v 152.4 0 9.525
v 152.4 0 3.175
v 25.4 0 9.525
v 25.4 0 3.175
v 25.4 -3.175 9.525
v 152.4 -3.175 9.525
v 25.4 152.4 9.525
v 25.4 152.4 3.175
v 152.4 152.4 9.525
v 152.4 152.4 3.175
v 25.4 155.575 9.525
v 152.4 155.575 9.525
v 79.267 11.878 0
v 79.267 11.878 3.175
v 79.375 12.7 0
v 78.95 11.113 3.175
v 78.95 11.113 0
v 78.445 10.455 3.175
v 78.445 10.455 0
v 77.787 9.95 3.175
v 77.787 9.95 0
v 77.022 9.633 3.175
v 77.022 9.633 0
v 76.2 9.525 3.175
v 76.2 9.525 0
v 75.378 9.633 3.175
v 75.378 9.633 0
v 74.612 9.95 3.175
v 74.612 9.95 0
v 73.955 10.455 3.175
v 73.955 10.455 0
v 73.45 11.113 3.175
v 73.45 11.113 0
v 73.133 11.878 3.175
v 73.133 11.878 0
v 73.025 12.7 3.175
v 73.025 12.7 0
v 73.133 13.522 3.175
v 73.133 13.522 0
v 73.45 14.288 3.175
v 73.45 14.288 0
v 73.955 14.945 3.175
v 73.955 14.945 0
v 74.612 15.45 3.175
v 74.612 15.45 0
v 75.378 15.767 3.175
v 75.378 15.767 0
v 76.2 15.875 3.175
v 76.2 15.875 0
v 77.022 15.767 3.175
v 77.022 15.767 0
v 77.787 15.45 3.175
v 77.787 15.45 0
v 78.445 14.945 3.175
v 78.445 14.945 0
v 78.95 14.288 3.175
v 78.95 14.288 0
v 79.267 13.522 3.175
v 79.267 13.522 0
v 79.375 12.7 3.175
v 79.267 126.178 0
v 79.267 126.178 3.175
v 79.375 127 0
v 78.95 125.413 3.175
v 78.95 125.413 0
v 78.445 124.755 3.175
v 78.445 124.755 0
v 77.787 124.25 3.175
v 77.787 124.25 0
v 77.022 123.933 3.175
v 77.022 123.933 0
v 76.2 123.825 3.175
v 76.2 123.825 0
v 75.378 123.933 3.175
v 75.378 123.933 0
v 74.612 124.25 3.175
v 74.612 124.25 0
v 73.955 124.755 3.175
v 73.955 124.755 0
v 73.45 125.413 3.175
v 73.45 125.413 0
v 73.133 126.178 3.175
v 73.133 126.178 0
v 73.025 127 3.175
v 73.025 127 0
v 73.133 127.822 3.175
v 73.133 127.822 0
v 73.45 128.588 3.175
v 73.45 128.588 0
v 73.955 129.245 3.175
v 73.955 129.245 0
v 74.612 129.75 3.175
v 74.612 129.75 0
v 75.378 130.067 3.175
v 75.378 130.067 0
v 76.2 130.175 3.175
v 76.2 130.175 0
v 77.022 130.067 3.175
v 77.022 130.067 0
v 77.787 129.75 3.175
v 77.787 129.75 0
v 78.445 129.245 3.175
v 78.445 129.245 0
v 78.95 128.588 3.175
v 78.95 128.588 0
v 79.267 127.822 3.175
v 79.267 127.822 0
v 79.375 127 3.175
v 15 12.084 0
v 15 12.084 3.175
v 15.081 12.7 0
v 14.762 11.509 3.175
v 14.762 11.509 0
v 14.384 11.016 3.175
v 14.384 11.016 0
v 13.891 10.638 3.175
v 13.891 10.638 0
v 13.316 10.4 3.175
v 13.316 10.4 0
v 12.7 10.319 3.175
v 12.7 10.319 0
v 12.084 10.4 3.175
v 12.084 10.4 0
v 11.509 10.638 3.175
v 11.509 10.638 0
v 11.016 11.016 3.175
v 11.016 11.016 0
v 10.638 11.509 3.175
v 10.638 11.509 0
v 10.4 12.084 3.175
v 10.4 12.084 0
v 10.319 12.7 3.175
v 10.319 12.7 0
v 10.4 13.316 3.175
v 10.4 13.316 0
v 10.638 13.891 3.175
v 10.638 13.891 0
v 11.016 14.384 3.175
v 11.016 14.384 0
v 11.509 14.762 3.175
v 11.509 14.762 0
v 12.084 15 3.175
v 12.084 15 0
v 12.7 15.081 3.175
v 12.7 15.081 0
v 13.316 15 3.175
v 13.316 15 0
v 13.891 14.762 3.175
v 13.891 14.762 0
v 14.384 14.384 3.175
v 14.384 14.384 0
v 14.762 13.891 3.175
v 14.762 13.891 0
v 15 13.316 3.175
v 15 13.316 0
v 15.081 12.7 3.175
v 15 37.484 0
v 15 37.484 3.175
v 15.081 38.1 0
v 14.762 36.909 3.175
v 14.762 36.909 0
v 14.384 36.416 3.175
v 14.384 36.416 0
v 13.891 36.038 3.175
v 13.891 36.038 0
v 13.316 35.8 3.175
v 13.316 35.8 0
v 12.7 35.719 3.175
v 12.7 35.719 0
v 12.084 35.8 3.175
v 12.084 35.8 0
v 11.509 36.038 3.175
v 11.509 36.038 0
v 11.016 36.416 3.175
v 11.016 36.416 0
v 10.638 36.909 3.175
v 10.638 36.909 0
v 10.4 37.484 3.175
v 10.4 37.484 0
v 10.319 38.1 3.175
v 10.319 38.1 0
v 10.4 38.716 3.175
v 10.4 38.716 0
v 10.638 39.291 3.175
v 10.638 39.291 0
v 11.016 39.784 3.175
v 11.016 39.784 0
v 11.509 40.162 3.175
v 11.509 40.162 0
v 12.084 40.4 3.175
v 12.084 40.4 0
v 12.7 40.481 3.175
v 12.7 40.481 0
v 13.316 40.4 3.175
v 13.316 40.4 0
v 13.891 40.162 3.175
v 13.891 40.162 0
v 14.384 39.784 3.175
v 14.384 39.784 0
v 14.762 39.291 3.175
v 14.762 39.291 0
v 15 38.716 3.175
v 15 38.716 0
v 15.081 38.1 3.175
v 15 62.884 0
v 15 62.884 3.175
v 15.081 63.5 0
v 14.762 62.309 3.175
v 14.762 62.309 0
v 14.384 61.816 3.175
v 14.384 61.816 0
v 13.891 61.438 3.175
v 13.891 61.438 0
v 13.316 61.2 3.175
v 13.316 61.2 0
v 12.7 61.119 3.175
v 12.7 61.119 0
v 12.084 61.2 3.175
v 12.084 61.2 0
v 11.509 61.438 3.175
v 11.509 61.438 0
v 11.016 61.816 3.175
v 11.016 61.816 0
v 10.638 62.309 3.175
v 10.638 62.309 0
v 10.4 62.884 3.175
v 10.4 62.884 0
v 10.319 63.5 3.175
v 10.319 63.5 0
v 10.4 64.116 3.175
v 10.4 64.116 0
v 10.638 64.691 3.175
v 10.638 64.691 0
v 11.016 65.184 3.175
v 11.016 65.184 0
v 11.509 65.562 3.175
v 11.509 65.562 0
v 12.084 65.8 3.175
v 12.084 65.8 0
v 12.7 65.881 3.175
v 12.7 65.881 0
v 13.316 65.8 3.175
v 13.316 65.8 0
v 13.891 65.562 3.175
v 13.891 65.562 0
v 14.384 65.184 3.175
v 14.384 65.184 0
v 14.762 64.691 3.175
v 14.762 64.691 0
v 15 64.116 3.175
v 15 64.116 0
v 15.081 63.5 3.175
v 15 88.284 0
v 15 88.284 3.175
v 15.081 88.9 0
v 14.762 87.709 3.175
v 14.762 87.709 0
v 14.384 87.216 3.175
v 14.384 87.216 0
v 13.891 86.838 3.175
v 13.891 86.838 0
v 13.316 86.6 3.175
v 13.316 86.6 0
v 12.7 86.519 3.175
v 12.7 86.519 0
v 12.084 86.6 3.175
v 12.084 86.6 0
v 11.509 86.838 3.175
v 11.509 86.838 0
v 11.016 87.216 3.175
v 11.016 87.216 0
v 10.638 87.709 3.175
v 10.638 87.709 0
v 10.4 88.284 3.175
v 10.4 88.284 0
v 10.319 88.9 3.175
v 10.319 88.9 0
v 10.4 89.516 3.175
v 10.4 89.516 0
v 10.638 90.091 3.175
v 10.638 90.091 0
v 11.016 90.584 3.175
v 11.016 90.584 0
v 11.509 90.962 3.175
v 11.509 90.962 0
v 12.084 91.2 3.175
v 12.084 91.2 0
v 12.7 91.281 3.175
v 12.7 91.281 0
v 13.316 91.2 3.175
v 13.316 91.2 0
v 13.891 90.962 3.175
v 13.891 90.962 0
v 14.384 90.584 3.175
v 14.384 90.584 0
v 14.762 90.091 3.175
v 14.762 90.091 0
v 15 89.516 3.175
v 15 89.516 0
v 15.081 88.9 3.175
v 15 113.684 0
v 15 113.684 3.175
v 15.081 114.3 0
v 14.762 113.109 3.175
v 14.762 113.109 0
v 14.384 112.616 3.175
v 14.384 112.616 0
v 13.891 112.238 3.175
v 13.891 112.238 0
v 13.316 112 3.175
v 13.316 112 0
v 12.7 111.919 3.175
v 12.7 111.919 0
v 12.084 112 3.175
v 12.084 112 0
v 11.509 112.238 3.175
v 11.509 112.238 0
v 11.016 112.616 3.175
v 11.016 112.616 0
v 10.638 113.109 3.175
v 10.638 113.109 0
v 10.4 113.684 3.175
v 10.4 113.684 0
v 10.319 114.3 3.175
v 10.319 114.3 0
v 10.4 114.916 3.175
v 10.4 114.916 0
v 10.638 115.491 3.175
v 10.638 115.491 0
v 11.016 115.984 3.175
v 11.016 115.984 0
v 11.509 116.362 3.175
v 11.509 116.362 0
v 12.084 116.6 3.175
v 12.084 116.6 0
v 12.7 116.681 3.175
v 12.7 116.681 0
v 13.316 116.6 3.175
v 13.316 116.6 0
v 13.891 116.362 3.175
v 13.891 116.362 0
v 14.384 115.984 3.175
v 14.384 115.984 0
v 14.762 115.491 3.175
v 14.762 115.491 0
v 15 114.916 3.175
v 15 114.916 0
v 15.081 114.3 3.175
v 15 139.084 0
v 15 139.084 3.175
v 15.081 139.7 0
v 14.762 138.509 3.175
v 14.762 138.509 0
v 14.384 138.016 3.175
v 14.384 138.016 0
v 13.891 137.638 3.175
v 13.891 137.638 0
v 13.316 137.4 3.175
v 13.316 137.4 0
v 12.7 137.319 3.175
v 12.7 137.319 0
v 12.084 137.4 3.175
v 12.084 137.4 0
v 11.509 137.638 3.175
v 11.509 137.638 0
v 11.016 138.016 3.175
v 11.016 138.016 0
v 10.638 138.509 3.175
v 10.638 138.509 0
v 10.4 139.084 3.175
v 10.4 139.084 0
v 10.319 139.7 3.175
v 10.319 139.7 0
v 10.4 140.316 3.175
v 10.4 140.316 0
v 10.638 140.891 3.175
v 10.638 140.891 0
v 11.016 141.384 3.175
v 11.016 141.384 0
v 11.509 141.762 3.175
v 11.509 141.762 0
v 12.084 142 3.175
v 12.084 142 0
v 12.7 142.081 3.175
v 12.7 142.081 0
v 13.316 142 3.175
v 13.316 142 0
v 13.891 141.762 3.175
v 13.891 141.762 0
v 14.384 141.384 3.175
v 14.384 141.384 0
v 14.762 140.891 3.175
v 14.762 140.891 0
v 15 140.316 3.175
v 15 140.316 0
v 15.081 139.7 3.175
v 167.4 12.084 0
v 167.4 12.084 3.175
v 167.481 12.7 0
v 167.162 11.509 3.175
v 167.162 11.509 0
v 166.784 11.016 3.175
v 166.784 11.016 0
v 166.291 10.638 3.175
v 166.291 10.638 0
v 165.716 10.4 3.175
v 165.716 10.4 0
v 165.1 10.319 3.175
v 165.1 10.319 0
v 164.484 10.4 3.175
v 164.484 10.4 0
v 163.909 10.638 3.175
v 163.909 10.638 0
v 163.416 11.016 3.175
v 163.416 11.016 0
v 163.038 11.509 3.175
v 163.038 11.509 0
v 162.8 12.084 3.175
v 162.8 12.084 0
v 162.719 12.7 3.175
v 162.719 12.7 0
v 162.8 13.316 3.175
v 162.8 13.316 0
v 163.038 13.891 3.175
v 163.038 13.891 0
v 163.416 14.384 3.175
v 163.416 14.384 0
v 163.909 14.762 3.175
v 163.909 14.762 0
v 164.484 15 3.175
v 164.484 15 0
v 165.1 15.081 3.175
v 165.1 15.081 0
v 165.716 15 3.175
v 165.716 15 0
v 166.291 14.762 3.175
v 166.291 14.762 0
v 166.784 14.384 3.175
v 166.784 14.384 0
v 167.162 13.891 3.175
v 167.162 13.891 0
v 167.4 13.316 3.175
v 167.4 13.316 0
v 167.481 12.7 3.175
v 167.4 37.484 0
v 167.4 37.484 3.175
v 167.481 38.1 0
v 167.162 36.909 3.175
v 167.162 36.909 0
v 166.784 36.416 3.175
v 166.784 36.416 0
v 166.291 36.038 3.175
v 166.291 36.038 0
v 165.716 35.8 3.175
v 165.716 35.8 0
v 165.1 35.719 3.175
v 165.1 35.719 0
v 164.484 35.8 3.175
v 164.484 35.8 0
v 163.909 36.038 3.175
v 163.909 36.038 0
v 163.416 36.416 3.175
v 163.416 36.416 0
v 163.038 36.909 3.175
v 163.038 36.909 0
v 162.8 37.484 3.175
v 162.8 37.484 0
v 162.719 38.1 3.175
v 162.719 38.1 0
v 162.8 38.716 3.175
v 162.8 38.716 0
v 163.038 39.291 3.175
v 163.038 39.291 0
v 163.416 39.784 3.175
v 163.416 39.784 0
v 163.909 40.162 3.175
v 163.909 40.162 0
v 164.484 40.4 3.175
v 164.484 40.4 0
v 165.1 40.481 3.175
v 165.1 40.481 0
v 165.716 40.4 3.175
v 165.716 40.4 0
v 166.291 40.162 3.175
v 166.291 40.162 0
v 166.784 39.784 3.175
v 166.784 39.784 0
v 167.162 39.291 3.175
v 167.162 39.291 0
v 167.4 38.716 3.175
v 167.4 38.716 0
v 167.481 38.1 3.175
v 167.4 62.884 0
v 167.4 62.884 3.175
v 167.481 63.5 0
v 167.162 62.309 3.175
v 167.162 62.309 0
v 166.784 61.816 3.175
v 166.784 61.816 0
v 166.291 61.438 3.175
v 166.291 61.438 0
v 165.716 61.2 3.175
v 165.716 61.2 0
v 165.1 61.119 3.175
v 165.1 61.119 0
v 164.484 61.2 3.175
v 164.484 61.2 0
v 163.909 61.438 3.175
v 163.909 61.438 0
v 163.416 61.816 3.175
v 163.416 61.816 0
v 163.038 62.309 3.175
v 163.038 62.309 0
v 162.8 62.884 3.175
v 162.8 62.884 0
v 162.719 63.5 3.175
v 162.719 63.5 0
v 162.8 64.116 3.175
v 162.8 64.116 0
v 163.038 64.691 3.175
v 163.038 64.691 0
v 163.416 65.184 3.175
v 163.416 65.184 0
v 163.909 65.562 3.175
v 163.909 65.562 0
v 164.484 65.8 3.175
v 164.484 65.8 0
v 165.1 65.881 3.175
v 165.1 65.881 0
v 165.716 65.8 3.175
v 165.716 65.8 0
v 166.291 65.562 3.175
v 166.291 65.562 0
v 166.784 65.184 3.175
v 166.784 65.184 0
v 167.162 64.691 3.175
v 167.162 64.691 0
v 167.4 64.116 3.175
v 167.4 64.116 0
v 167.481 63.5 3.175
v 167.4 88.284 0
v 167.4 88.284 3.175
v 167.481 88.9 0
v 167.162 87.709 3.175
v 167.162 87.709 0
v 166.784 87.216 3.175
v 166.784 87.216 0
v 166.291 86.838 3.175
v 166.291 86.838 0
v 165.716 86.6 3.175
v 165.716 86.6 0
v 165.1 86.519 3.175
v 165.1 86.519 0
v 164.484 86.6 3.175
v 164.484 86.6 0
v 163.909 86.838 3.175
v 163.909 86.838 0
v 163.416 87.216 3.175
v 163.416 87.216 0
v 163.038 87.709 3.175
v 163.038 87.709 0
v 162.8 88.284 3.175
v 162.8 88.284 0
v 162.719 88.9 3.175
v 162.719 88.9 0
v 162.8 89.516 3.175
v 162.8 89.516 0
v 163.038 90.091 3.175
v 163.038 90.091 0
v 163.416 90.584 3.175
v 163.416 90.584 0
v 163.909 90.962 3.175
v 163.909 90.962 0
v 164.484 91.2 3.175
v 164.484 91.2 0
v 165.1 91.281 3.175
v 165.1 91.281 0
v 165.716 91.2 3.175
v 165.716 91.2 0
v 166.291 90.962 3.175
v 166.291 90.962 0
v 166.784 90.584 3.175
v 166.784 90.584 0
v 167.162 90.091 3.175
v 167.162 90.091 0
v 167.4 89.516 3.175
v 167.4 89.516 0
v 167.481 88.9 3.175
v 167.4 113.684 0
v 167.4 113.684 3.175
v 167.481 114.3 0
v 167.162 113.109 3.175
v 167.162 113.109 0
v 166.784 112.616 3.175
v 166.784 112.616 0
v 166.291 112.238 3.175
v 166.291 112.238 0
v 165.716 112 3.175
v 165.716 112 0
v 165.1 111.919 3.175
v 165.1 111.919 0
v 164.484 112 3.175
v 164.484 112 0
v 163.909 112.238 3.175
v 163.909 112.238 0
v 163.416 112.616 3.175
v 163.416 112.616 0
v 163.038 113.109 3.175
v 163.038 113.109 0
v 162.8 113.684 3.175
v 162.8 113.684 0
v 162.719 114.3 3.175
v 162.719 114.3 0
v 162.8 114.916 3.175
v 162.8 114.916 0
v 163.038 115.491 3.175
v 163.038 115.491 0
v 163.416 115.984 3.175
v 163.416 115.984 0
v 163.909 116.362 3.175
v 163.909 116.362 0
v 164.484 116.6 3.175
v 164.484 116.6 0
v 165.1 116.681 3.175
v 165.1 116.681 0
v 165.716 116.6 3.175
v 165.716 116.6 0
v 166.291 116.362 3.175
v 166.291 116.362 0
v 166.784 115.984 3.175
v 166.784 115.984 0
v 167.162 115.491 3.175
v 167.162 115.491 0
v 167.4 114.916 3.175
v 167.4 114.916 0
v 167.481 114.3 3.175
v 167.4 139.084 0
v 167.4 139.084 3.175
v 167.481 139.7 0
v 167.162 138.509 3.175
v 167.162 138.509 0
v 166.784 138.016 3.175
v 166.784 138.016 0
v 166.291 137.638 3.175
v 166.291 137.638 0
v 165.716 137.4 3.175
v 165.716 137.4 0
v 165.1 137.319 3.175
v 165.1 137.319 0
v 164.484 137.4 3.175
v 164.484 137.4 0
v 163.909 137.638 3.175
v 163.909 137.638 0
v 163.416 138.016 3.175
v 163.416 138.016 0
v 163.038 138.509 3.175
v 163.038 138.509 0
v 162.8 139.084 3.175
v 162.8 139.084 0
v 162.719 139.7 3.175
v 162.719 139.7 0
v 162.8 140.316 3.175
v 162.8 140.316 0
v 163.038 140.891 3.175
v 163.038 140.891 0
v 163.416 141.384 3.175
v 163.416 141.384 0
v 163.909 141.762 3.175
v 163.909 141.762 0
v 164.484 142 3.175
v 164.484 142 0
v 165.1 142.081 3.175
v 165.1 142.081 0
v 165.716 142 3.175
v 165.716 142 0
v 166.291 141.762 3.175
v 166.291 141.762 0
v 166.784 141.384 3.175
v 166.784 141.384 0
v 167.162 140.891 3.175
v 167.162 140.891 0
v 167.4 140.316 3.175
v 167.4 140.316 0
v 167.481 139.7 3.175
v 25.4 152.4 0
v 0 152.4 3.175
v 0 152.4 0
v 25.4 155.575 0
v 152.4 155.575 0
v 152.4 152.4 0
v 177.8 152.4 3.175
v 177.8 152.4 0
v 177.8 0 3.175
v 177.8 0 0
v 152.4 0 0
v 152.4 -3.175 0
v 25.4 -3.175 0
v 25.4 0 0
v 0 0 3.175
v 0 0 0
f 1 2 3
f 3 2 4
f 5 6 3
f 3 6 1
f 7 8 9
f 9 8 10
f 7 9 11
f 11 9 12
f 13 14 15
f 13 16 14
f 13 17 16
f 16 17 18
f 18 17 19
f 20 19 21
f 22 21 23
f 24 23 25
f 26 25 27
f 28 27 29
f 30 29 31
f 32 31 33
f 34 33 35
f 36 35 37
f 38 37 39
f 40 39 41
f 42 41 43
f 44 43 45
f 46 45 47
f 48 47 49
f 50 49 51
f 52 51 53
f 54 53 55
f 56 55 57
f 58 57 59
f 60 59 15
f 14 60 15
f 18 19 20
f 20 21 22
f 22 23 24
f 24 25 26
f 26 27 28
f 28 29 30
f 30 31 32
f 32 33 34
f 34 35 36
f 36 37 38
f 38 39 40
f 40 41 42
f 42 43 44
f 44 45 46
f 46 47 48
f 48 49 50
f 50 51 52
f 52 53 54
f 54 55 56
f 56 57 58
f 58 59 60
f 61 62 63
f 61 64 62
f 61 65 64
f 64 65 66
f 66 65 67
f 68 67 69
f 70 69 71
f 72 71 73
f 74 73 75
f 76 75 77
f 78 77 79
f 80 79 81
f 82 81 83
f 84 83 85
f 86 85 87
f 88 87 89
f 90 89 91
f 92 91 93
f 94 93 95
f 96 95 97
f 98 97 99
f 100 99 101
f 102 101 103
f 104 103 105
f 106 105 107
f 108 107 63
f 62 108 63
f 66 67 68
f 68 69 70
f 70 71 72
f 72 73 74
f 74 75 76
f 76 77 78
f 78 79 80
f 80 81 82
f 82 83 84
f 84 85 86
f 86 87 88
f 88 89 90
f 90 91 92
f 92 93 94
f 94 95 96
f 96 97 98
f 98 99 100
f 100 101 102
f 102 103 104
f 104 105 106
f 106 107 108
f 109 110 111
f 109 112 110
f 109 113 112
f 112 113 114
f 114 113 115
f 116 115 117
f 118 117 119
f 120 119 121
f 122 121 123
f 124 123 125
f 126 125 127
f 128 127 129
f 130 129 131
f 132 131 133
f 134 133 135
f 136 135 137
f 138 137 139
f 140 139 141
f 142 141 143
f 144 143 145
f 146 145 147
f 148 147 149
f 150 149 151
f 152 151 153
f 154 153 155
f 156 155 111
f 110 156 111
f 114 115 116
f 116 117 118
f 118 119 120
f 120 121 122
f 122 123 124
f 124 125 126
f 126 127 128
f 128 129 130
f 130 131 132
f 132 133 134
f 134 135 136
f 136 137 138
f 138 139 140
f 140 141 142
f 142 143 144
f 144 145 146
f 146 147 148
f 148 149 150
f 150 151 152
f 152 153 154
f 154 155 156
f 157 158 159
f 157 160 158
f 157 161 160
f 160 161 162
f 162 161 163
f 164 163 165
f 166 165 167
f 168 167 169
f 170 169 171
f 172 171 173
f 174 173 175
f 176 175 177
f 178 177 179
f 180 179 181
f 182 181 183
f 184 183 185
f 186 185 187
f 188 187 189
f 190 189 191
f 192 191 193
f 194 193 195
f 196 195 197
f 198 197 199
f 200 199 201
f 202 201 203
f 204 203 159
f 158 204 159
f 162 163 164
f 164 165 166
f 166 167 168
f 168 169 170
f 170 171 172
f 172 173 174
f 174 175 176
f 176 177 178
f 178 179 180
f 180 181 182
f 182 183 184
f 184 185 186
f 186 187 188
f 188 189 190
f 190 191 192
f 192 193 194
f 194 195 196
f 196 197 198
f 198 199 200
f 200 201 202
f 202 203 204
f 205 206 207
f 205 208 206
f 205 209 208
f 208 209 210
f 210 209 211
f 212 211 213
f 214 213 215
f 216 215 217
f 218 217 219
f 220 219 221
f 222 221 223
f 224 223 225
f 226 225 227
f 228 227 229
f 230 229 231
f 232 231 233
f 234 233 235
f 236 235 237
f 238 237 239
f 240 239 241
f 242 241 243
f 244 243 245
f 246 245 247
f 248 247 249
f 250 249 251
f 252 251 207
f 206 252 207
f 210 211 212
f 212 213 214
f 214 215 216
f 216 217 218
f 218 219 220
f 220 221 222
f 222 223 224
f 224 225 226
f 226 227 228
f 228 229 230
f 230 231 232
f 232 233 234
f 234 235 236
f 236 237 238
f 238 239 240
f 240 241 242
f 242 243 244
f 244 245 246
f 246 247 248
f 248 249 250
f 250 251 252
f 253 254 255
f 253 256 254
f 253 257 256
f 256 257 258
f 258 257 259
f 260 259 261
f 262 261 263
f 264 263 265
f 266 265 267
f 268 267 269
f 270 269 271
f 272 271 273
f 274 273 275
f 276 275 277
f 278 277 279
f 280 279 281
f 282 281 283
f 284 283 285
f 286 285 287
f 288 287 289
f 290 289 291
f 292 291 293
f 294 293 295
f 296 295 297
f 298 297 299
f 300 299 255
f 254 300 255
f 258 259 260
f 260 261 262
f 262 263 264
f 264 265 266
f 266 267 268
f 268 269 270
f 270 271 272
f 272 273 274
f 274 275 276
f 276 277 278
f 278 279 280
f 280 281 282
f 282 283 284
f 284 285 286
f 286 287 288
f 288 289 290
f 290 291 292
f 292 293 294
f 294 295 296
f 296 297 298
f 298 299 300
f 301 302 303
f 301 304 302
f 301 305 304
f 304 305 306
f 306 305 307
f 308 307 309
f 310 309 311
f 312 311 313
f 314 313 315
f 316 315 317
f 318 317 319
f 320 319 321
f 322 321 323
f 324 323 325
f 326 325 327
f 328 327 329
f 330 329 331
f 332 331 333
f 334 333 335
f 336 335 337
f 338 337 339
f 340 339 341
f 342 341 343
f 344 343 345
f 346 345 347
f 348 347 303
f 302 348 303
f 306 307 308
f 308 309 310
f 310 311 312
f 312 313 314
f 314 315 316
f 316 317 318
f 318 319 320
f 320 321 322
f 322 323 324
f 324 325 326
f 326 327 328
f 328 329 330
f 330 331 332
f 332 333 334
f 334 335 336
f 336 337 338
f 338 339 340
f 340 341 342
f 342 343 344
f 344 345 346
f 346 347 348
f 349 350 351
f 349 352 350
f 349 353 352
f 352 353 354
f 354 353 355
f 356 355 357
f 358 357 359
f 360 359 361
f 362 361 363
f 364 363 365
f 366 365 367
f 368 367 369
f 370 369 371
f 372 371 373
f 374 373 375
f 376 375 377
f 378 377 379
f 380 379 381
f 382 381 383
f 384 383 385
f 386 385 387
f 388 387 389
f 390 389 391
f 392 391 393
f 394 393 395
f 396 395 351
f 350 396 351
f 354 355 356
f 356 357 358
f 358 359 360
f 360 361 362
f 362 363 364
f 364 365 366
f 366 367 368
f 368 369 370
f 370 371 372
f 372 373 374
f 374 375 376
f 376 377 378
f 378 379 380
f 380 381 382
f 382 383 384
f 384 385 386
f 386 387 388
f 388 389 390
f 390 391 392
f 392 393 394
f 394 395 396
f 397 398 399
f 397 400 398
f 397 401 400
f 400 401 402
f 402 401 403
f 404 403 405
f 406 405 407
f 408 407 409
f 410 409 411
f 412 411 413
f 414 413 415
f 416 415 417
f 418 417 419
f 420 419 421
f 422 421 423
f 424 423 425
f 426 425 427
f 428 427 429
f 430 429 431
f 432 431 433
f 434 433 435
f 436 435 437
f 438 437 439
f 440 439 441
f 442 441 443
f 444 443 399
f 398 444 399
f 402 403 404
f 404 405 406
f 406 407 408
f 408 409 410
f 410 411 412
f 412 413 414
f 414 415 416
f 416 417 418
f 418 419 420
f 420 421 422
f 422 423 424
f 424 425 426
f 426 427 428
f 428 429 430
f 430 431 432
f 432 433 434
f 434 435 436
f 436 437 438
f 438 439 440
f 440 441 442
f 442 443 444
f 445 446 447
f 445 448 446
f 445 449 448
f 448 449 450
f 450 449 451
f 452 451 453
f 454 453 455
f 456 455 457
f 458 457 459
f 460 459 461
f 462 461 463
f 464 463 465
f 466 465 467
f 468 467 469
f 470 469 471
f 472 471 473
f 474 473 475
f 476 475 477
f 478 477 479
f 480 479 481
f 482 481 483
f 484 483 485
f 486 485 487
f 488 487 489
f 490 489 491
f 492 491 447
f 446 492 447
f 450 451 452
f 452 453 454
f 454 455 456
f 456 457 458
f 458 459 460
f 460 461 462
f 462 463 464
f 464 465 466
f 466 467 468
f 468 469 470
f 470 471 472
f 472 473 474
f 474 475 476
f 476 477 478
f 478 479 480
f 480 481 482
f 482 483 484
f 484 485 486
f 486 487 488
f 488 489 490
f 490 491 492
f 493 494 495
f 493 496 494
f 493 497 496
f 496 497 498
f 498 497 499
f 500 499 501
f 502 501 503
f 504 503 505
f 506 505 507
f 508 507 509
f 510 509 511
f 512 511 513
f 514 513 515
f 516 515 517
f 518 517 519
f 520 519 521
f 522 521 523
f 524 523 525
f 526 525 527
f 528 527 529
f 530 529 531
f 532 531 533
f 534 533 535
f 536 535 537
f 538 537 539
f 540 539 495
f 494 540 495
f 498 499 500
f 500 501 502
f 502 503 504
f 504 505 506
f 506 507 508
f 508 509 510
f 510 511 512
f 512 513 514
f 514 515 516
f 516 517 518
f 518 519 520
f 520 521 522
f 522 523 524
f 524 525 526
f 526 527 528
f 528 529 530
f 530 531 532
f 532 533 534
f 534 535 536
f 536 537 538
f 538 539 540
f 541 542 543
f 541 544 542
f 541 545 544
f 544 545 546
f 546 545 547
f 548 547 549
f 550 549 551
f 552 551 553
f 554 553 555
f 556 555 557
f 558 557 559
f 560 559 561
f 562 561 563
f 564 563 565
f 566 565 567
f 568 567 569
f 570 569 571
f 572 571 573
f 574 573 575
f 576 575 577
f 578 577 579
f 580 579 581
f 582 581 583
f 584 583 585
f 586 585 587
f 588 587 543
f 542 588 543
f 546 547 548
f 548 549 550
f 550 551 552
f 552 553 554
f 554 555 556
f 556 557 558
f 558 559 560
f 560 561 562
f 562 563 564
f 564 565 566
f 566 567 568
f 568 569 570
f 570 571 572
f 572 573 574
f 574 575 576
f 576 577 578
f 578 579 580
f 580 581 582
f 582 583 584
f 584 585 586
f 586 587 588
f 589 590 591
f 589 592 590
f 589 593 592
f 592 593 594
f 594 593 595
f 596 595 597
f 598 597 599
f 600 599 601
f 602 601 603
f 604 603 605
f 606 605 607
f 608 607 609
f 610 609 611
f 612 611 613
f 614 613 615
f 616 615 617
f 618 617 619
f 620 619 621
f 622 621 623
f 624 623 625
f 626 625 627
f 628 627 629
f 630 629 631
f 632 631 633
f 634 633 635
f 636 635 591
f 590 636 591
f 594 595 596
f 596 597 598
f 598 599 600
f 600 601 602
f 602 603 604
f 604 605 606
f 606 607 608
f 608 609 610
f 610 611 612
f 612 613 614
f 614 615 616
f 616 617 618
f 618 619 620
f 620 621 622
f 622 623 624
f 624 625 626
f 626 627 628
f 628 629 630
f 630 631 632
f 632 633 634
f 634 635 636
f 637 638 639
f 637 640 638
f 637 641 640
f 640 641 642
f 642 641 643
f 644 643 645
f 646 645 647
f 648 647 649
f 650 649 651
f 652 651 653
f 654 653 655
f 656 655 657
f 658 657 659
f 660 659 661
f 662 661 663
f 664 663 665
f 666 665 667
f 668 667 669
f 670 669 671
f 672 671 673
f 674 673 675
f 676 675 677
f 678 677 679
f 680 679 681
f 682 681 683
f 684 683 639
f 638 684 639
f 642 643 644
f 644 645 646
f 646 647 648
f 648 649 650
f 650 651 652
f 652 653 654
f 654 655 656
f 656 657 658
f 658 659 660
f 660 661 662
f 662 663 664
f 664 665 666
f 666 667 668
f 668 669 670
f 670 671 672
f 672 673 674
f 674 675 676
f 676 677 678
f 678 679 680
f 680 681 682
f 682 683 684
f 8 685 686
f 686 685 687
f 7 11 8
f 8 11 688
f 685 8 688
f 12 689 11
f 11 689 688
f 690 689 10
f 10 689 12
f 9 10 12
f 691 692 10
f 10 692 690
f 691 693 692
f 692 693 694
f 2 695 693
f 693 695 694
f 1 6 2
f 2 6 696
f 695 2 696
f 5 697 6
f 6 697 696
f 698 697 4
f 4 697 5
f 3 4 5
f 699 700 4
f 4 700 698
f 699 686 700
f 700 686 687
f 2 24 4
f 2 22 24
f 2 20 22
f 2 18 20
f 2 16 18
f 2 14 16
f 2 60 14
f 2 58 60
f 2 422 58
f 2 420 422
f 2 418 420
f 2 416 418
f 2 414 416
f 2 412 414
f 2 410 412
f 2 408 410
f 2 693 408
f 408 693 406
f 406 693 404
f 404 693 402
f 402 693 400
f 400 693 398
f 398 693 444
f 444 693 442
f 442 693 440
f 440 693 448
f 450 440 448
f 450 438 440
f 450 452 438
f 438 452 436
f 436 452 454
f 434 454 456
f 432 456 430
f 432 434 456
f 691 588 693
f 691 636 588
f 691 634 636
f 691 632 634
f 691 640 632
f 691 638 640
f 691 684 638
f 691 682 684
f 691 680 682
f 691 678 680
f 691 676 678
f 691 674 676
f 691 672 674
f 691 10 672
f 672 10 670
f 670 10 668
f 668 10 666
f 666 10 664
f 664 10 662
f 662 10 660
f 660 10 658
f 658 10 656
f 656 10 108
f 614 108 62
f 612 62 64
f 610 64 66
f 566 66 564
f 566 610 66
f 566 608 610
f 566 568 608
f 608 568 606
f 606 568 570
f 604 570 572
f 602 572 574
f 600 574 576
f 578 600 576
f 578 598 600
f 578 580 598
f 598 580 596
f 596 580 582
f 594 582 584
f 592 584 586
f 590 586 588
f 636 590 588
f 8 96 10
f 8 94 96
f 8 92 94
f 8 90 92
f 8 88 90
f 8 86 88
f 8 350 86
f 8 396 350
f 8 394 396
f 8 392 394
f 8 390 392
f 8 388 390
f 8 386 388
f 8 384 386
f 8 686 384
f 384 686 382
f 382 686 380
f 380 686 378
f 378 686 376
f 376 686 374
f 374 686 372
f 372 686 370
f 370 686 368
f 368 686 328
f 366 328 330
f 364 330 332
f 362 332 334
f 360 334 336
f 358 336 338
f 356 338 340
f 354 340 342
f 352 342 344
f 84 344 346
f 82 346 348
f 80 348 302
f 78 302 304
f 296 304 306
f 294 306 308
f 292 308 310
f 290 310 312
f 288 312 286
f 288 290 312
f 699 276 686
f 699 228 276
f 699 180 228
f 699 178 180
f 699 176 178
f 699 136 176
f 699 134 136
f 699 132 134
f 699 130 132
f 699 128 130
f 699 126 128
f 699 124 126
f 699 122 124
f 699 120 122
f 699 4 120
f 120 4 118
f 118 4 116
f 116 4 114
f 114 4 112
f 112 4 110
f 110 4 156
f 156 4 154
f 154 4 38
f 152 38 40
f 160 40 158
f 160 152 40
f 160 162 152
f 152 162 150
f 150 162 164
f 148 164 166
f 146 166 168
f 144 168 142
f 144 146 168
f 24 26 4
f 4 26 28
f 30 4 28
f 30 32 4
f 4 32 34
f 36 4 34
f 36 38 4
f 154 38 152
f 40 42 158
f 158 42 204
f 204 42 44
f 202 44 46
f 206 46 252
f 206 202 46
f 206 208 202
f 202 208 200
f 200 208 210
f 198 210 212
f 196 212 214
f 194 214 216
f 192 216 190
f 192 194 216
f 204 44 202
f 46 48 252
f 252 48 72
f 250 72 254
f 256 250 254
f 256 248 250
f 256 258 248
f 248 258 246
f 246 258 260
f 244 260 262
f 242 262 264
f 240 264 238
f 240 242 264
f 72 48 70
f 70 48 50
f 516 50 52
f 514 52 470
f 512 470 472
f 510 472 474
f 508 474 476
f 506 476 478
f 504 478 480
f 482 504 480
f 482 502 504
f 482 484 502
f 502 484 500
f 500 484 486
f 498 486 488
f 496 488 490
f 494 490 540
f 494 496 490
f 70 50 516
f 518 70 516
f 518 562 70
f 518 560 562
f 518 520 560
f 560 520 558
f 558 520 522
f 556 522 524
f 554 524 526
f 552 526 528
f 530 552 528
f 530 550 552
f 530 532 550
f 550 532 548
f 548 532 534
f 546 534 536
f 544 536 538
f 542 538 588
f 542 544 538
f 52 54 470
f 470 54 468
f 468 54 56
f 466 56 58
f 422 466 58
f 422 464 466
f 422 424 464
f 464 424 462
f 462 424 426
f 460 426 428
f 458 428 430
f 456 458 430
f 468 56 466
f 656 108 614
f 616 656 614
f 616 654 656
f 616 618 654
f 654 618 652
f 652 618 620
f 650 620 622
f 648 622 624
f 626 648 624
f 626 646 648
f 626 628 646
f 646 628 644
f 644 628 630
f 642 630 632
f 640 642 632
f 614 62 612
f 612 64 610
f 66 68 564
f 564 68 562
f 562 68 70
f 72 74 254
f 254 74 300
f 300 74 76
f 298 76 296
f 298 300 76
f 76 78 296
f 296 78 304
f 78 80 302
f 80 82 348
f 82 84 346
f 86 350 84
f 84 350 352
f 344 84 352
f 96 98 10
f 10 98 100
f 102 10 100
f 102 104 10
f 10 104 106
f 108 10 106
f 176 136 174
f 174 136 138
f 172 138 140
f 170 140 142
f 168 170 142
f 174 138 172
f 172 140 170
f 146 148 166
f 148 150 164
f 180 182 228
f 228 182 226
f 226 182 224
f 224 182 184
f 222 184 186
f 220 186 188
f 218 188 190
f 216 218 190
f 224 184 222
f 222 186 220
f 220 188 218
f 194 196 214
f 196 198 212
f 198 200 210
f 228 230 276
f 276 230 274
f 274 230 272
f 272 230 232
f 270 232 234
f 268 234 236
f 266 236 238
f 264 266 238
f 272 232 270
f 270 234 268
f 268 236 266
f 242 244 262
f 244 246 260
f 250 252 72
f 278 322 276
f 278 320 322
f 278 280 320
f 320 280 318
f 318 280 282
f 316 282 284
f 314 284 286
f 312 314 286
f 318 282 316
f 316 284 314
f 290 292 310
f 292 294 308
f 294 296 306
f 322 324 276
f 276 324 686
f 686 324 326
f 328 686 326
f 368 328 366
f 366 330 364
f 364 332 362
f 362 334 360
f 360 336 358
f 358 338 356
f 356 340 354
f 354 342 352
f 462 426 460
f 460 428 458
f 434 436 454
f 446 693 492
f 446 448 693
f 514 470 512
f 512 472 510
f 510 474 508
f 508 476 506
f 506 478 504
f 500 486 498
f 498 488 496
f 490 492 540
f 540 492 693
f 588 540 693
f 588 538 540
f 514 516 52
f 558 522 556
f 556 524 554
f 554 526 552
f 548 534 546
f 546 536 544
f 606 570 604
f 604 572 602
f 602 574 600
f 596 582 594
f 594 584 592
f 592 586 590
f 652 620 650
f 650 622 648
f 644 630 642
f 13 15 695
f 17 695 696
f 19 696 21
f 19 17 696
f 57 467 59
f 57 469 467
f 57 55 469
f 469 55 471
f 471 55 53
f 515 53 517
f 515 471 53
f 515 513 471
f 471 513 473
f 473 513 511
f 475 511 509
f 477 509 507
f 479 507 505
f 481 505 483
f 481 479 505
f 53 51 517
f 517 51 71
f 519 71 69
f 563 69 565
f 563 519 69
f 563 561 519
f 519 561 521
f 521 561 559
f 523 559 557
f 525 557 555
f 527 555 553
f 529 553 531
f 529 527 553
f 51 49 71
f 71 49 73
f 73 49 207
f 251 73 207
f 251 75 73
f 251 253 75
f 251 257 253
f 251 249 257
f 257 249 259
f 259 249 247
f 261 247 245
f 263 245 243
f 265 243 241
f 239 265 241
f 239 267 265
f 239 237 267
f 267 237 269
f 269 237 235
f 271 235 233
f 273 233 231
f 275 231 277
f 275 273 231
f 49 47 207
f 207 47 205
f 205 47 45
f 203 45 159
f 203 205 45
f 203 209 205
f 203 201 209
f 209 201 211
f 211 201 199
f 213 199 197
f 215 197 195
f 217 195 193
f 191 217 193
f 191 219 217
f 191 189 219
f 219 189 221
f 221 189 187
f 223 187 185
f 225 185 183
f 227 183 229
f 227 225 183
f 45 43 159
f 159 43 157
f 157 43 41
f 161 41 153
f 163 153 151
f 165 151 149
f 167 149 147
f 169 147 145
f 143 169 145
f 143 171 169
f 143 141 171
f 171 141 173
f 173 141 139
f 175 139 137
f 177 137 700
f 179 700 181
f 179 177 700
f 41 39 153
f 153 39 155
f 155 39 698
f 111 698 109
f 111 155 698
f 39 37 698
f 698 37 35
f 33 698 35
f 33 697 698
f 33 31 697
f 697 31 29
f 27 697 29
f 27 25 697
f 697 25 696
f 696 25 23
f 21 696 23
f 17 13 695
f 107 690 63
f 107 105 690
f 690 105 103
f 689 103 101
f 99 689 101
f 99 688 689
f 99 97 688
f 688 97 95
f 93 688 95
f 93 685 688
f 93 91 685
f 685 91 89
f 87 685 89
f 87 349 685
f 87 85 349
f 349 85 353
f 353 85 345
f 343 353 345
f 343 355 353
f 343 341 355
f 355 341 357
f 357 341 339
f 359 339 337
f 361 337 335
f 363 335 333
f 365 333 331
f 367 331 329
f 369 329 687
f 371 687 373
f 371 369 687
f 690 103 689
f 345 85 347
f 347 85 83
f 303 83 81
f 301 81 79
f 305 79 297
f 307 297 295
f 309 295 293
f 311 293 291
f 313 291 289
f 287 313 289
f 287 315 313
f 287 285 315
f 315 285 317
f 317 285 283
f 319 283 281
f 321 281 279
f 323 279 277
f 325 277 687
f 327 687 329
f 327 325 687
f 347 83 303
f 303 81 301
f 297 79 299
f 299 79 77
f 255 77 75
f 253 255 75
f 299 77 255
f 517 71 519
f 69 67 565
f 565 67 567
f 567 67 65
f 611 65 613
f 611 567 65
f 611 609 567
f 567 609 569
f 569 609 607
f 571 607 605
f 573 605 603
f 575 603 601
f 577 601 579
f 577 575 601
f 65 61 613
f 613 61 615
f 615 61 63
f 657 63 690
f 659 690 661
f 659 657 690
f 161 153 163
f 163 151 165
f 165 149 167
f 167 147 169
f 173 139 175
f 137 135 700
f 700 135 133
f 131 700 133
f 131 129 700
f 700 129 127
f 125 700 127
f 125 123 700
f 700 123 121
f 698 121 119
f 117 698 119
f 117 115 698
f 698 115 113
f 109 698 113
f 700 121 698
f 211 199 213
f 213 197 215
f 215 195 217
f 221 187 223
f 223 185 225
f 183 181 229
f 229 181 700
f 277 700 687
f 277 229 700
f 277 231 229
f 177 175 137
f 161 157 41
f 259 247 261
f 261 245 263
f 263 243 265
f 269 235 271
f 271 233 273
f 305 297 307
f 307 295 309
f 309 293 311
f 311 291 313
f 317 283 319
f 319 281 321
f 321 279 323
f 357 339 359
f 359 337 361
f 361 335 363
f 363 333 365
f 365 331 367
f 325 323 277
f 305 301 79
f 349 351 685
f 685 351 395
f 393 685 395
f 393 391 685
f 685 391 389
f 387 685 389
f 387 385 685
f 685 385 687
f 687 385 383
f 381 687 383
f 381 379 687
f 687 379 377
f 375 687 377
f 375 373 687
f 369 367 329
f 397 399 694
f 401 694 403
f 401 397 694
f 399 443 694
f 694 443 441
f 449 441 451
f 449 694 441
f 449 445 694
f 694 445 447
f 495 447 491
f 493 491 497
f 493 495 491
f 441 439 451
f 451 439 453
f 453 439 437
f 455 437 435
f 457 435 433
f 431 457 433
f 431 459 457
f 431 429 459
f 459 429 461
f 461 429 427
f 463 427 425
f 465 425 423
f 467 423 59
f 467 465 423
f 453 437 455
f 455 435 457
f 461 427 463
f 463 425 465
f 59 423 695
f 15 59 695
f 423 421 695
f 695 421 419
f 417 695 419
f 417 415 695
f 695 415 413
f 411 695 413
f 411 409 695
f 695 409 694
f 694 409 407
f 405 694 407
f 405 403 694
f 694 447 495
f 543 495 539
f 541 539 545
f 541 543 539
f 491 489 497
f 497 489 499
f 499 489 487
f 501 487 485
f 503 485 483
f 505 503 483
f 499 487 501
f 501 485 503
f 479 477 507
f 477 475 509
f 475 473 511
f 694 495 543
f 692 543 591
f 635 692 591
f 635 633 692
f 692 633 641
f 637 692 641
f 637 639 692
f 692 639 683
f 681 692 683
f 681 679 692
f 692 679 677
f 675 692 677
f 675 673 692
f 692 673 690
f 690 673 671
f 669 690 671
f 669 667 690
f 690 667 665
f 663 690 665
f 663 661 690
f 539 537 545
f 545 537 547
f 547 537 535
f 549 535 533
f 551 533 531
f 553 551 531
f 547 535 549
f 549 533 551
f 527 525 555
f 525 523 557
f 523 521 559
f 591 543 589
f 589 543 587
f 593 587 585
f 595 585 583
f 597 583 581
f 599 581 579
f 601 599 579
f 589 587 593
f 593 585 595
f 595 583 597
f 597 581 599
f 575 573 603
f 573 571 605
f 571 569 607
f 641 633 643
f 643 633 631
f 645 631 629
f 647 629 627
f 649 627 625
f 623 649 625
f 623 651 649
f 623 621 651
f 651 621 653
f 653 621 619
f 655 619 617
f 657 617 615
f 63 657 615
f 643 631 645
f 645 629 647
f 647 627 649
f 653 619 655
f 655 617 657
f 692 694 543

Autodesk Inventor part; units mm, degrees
ref_plane "YZ Plane" through (0, 0, 0) normal (1, 0, 0) x (0, 1, 0)
ref_plane "XZ Plane" through (0, 0, 0) normal (0, 1, 0) x (-1, 0, 0)
ref_plane "XY Plane" through (0, 0, 0) normal (0, 0, 1) x (1, 0, 0)
sketch "Sketch1" plane through (0, 0, 0) normal (0, 0, 1) x (1, 0, 0)
  line L0 (177.8, 0) -> (177.8, 152.4)
  line L1 (0, 152.4) -> (0, 0)
  line L2 (152.4, 152.4) -> (152.4, 155.575)
  line L3 (152.4, 155.575) -> (25.4, 155.575)
  line L4 (25.4, 155.575) -> (25.4, 152.4)
  line L5 (0, 152.4) -> (25.4, 152.4)
  line L6 (152.4, 152.4) -> (177.8, 152.4)
  line L7 (152.4, 0) -> (152.4, -3.175)
  line L8 (152.4, -3.175) -> (25.4, -3.175)
  line L9 (25.4, -3.175) -> (25.4, 0)
  line L10 (0, 0) -> (25.4, 0)
  line L11 (152.4, 0) -> (177.8, 0)
  dimension "d0" = 152.4
  dimension "d1" = 177.8
  dimension "d18" = 25.4
  dimension "d19" = 25.4
  dimension "d20" = 3.175
extrude "Extrusion3" add sketch "Sketch1" along normal blind 3.175
sketch "Sketch2" plane through (0, 0, 3.175) normal (0, 0, 1) x (1, 0, 0)
  line L0 (0, 152.4) -> (25.4, 152.4) projected
  line L1 (0, 0) -> (0, 152.4) projected
  line L2 (25.4, 0) -> (0, 0) projected
  line L3 (177.8, 0) -> (152.4, 0) projected
  line L4 (152.4, 152.4) -> (177.8, 152.4) projected
  line L5 (25.4, 152.4) -> (25.4, 155.575) projected
  line L6 (12.7, 152.4) -> (12.7, 139.7) construction
  line L7 (12.7, 139.7) -> (12.7, 114.3) construction
  line L8 (12.7, 114.3) -> (12.7, 88.9) construction
  line L9 (12.7, 88.9) -> (12.7, 63.5) construction
  line L10 (12.7, 63.5) -> (12.7, 38.1) construction
  line L11 (12.7, 38.1) -> (12.7, 12.7) construction
  line L12 (12.7, 12.7) -> (12.7, 0) construction
  circle A0 centre (12.7, 139.7) radius 2.3813
  circle A1 centre (12.7, 114.3) radius 2.3813
  circle A2 centre (12.7, 88.9) radius 2.3813
  circle A3 centre (12.7, 63.5) radius 2.3813
  circle A4 centre (12.7, 38.1) radius 2.3813
  circle A5 centre (12.7, 12.7) radius 2.3813
  line L13 (165.1, 152.4) -> (165.1, 139.7) construction
  line L14 (165.1, 139.7) -> (165.1, 114.3) construction
  line L15 (165.1, 114.3) -> (165.1, 88.9) construction
  line L16 (165.1, 88.9) -> (165.1, 63.5) construction
  line L17 (165.1, 63.5) -> (165.1, 38.1) construction
  line L18 (165.1, 38.1) -> (165.1, 12.7) construction
  line L19 (165.1, 12.7) -> (165.1, 0) construction
  circle A6 centre (165.1, 139.7) radius 2.3813
  circle A7 centre (165.1, 114.3) radius 2.3813
  circle A8 centre (165.1, 88.9) radius 2.3813
  circle A9 centre (165.1, 63.5) radius 2.3813
  circle A10 centre (165.1, 38.1) radius 2.3813
  circle A11 centre (165.1, 12.7) radius 2.3813
  dimension "d26" = 12.7
  dimension "d27" = 25.4
  dimension "d28" = 4.7625
  dimension "d29" = 12.7
  dimension "d30" = 25.4
  dimension "d31" = 4.7625
extrude "Extrusion4" cut sketch "Sketch2" against normal up to next
sketch "Sketch3" plane through (0, 0, 3.175) normal (0, 0, 1) x (1, 0, 0)
  line L0 (0, 0) -> (0, 152.4) projected
  line L1 (25.4, 0) -> (0, 0) projected
  circle A0 centre (76.2, 127) radius 3.175
  circle A1 centre (76.2, 12.7) radius 3.175
  dimension "d34" = 76.2
  dimension "d35" = 76.2
  dimension "d36" = 114.3
  dimension "d37" = 12.7
  dimension "d38" = 6.35
  dimension "d39" = 6.35
extrude "Extrusion5" cut sketch "Sketch3" against normal up to next
sketch "Sketch5" plane through (0, 0, 3.175) normal (0, 0, 1) x (1, 0, 0)
  line L0 (25.4, 155.575) -> (152.4, 155.575)
  line L1 (152.4, 155.575) -> (152.4, 152.4)
  line L2 (152.4, 152.4) -> (25.4, 152.4)
  line L3 (25.4, 152.4) -> (25.4, 155.575)
  line L4 (25.4, -3.175) -> (152.4, -3.175)
  line L5 (152.4, -3.175) -> (152.4, 0)
  line L6 (152.4, 0) -> (25.4, 0)
  line L7 (25.4, 0) -> (25.4, -3.175)
extrude "Extrusion7" add sketch "Sketch5" along normal blind 6.35
properties part number "DriveTrain_MotorMount" material "Aluminum-6061"
